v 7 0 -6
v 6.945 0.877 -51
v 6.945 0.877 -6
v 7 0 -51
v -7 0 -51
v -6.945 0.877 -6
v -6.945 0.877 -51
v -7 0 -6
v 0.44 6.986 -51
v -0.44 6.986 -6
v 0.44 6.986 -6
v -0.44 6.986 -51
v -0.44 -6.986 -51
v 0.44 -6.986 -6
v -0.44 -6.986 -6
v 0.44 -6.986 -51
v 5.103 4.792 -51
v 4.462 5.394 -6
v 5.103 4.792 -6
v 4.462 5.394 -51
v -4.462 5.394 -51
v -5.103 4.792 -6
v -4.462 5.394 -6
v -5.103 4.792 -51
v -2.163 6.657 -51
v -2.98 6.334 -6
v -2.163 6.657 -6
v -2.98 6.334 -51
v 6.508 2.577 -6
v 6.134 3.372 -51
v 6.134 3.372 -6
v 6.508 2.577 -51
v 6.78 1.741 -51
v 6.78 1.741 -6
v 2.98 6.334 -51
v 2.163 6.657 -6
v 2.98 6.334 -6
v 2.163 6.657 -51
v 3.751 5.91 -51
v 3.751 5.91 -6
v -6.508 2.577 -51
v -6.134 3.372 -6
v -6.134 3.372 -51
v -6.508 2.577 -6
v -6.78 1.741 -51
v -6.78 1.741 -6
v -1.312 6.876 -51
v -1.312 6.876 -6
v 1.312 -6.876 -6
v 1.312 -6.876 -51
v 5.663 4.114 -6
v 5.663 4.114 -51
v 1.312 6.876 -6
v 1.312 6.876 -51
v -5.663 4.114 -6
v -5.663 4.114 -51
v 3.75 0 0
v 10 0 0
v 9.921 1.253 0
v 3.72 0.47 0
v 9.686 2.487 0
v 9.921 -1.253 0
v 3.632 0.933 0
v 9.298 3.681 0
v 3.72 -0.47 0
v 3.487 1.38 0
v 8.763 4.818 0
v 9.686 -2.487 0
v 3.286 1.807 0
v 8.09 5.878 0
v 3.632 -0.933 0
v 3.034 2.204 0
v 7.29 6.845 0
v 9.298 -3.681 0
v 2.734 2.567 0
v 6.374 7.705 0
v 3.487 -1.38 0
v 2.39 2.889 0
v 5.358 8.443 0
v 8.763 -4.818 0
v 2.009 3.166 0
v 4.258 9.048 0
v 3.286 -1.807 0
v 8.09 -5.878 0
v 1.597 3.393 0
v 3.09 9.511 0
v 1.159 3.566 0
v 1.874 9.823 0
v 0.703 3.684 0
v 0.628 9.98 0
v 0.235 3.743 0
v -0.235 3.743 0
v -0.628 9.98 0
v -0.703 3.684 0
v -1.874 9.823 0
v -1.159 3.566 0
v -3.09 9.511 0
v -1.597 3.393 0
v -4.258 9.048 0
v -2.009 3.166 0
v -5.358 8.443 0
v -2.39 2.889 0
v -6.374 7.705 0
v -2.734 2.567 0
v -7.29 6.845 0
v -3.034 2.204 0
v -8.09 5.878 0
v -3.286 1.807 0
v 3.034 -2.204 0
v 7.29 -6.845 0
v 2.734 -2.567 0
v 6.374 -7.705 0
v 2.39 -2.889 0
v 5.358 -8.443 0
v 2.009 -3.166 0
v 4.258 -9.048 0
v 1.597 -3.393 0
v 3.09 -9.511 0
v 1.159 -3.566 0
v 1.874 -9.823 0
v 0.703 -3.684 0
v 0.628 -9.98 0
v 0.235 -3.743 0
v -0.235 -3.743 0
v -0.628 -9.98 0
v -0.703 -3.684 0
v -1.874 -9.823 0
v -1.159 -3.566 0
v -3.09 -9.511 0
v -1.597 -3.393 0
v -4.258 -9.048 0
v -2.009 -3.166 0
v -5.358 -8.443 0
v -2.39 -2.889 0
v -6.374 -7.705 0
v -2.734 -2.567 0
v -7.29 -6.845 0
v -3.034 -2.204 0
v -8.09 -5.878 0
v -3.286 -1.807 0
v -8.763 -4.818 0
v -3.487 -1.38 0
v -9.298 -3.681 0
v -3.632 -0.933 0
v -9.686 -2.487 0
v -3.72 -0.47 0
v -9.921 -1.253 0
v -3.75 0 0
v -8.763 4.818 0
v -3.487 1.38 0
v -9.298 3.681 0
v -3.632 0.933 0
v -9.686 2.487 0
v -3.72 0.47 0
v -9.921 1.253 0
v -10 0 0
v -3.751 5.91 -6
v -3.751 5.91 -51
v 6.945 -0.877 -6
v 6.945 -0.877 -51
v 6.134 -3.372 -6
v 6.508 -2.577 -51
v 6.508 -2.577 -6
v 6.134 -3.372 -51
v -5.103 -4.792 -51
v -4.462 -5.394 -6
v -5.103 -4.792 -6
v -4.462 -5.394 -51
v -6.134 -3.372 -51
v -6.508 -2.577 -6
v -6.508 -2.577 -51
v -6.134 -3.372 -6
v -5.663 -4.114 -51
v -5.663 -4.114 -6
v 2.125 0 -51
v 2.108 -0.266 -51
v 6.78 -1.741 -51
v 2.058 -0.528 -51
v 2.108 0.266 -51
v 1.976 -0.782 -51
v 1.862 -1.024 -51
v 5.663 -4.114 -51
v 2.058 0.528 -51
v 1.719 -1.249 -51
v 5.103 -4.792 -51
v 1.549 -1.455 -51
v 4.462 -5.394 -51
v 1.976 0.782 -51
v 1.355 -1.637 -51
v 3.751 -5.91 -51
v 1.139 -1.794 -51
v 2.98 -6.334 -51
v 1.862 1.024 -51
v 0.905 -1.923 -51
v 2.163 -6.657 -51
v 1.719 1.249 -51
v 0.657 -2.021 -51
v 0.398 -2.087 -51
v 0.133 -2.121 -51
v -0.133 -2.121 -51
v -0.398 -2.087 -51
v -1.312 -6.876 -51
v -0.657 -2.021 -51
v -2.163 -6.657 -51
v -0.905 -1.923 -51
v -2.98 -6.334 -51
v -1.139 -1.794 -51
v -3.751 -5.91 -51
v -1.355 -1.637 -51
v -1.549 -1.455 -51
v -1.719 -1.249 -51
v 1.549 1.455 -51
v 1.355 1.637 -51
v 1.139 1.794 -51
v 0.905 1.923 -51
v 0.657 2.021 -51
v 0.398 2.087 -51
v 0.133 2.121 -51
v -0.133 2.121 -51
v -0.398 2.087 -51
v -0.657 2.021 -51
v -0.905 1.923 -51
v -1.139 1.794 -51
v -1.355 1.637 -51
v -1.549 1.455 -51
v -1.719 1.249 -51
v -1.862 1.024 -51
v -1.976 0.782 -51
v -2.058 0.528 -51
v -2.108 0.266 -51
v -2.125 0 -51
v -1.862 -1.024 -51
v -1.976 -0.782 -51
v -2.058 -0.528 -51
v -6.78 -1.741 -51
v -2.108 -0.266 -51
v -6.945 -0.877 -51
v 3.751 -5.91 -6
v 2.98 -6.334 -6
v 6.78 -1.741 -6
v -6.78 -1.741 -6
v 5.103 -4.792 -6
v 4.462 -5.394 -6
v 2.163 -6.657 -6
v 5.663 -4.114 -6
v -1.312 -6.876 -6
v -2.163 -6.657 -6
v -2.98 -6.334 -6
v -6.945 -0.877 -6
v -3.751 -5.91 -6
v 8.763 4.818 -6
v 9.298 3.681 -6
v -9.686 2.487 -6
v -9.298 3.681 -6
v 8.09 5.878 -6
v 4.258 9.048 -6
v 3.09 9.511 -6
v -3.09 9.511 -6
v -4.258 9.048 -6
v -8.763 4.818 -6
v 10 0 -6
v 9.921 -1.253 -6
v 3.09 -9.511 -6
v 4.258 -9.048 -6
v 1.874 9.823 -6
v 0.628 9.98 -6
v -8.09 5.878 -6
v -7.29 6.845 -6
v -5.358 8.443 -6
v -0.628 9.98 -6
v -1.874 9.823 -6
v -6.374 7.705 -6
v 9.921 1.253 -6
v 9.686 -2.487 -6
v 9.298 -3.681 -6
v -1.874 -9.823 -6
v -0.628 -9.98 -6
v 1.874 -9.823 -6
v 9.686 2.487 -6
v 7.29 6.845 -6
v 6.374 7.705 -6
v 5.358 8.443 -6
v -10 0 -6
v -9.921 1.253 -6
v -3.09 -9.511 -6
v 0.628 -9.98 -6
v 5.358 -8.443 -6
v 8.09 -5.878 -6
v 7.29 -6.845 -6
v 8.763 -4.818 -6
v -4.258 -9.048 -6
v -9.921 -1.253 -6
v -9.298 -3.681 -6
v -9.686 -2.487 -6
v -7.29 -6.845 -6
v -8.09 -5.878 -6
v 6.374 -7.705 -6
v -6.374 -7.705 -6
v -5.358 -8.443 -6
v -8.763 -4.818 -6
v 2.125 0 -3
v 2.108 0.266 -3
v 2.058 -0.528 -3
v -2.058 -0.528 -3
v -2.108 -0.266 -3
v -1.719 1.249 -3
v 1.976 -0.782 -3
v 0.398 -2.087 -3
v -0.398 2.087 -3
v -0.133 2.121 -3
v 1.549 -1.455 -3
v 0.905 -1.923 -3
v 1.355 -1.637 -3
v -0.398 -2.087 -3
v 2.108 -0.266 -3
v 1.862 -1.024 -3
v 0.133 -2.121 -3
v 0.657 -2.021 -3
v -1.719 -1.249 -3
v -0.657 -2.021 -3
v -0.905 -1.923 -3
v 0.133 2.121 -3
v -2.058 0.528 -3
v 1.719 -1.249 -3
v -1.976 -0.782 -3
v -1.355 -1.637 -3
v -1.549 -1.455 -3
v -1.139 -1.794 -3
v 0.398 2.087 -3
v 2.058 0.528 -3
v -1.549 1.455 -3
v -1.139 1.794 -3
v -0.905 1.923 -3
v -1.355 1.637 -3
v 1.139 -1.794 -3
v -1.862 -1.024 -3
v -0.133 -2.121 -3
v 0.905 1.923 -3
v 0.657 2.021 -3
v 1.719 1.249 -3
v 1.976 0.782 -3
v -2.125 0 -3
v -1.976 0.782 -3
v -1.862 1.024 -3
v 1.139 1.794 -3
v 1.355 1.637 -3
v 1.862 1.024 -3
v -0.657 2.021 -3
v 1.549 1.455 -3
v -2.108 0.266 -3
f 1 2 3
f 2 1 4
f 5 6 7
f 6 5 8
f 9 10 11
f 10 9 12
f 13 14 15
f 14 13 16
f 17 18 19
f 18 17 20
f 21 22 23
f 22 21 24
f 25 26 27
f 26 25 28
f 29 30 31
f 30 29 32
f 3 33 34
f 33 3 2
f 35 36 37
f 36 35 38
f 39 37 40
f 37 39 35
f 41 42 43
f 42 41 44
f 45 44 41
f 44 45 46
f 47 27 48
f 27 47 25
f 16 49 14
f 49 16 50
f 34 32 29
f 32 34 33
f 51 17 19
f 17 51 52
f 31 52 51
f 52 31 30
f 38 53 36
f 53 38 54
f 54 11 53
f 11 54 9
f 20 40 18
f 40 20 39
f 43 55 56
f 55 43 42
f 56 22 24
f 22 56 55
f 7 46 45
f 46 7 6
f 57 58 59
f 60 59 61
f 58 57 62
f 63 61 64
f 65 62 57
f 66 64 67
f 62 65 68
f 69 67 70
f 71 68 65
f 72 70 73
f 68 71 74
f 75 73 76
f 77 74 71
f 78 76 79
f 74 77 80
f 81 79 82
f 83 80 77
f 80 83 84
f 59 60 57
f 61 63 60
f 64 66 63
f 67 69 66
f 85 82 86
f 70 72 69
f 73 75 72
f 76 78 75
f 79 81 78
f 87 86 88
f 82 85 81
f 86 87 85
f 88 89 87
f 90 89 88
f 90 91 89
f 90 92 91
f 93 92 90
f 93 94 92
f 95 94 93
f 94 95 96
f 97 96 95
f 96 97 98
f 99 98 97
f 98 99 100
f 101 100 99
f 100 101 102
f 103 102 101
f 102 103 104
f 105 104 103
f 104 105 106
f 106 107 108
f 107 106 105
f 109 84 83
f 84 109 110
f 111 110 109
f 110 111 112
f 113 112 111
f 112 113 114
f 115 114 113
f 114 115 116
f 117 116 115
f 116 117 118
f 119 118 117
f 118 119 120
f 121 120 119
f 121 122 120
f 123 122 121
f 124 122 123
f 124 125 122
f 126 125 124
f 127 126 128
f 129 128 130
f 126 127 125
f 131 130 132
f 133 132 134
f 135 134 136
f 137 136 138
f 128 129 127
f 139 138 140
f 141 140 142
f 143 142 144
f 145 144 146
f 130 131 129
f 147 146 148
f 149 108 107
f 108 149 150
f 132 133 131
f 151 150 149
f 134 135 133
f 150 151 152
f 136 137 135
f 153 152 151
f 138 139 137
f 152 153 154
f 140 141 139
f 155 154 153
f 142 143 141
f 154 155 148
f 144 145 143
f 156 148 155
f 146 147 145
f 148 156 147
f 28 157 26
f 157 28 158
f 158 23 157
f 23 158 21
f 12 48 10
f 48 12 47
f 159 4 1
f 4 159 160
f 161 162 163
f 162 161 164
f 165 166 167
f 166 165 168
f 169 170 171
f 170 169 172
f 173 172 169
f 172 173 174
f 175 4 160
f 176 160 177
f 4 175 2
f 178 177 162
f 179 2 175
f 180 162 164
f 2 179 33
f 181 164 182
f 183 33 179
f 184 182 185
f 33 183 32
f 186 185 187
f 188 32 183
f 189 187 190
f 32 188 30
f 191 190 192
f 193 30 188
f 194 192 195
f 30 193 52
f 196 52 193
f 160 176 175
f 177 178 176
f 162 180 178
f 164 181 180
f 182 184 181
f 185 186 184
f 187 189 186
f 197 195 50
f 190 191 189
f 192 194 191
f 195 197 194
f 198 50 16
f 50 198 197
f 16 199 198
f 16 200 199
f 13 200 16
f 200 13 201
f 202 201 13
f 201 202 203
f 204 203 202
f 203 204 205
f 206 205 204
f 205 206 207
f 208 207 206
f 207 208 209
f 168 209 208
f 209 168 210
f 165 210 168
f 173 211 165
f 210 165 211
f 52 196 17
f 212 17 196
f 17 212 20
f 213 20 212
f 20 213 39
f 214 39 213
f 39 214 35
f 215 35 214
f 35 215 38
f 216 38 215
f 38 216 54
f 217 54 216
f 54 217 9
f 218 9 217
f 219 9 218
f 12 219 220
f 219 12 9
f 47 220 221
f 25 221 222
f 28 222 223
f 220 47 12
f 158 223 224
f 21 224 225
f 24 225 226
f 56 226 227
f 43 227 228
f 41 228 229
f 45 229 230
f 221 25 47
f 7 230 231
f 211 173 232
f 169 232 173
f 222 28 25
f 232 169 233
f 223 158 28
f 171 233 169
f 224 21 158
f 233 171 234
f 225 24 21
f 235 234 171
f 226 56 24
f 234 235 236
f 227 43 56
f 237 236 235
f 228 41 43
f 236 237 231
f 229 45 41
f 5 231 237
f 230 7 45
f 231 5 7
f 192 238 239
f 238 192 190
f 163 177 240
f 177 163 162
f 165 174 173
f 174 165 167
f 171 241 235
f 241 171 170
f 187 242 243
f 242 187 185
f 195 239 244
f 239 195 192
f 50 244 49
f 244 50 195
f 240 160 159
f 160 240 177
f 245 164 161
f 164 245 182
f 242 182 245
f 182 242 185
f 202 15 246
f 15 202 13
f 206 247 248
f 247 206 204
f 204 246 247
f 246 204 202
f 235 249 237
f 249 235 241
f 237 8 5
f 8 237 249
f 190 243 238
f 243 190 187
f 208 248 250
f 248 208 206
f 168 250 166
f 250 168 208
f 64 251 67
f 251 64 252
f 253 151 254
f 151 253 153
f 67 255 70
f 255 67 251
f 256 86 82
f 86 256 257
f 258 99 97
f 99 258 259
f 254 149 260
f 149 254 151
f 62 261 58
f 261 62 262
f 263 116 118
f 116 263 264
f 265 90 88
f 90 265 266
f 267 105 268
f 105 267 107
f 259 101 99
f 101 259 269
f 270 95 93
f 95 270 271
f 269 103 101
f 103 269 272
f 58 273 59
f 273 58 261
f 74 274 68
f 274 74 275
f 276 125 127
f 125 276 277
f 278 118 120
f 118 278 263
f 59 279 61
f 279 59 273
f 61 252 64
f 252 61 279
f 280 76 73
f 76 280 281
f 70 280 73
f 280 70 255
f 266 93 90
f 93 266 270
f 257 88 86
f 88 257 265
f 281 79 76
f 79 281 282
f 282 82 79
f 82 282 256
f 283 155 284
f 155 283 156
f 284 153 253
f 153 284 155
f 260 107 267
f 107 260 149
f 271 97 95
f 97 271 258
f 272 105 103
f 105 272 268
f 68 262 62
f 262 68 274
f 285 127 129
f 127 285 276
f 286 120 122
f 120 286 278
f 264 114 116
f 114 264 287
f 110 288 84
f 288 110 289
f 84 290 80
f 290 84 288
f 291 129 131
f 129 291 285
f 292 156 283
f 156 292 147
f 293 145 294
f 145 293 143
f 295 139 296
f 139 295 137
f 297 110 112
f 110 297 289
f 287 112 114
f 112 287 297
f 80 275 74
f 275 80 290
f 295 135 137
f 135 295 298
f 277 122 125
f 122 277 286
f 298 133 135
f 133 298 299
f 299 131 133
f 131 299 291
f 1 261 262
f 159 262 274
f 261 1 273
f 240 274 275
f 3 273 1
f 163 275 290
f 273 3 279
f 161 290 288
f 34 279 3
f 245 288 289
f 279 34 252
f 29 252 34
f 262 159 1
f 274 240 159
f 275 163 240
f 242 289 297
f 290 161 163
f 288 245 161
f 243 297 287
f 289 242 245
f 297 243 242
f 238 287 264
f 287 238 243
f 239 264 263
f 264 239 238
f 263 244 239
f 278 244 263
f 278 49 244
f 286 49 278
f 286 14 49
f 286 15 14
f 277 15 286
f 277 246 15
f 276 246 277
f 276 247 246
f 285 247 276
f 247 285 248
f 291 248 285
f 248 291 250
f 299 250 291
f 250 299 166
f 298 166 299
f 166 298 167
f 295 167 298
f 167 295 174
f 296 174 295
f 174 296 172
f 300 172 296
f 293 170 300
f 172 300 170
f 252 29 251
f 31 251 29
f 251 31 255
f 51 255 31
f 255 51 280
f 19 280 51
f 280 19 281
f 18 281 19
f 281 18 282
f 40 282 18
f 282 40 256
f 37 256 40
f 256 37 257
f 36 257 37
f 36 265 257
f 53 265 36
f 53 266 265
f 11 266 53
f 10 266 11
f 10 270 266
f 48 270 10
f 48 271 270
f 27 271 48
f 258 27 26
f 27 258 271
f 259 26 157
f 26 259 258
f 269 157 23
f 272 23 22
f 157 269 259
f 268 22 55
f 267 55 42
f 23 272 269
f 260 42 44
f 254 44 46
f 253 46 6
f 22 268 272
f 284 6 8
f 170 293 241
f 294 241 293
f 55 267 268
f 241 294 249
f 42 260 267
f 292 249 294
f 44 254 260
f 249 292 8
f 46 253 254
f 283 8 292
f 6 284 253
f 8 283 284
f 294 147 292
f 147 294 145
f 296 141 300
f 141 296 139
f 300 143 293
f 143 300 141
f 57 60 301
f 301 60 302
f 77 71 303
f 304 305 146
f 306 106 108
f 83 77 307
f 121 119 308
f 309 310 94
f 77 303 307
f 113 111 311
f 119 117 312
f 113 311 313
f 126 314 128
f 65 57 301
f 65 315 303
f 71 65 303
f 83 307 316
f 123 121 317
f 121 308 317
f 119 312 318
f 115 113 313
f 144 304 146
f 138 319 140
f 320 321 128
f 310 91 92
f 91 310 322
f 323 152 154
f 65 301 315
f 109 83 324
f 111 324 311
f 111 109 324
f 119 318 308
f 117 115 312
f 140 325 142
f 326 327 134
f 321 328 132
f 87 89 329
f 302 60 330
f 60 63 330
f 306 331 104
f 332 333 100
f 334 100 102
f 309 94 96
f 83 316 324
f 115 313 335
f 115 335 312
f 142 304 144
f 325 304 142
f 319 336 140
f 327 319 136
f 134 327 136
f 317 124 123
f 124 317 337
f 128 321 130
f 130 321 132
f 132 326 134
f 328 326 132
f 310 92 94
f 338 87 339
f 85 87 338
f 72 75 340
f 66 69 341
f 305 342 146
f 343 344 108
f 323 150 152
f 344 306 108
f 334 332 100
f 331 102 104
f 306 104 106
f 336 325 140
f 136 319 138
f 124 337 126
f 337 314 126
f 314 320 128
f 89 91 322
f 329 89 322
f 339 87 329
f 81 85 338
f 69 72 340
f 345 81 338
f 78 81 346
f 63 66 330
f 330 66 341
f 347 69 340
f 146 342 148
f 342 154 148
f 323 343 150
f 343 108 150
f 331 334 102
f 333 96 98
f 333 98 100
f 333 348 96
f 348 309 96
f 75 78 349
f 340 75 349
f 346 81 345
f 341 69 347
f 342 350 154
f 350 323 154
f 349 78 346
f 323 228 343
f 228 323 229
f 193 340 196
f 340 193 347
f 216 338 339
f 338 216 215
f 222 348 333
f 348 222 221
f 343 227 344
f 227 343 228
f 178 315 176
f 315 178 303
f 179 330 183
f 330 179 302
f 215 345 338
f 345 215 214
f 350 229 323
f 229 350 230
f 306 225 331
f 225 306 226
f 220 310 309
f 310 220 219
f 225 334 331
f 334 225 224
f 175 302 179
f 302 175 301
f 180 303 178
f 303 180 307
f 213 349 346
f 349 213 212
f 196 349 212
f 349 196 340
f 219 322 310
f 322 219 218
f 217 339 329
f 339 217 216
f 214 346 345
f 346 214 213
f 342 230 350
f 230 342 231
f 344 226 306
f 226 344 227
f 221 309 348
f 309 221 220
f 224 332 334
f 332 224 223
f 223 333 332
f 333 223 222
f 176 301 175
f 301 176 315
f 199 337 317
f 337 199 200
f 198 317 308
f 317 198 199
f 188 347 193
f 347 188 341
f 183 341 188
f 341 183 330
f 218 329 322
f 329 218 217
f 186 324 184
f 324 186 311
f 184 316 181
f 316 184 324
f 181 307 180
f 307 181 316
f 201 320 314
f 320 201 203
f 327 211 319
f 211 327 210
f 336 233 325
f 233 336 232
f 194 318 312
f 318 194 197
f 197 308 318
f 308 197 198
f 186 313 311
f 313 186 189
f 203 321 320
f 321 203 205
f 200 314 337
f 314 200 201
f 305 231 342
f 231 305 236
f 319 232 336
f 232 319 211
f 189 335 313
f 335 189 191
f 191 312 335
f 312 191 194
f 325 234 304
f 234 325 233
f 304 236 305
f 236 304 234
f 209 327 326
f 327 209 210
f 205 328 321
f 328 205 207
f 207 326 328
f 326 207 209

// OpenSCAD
$fn = 50;


difference() {
	union() {
		translate(v = [0, 0, -51.0000000000]) {
			cylinder(h = 51, r = 7.0000000000);
		}
		translate(v = [0, 0, -6.0000000000]) {
			cylinder(h = 6, r = 10.0000000000);
		}
	}
	union() {
		translate(v = [0, 0, 0]) {
			rotate(a = [0, 0, 0]) {
				difference() {
					union() {
						#translate(v = [0, 0, -51.0000000000]) {
							cylinder(h = 51, r = 2.0000000000);
						}
						#translate(v = [0, 0, -3]) {
							cylinder(h = 3, r = 7.0000000000, r1 = 2.1250000000, r2 = 3.7500000000);
						}
						#translate(v = [0, 0, -51.0000000000]) {
							cylinder(h = 51, r = 2.1250000000);
						}
						#translate(v = [0, 0, -51.0000000000]) {
							cylinder(h = 51, r = 2.0000000000);
						}
					}
					union();
				}
			}
		}
	}
}
